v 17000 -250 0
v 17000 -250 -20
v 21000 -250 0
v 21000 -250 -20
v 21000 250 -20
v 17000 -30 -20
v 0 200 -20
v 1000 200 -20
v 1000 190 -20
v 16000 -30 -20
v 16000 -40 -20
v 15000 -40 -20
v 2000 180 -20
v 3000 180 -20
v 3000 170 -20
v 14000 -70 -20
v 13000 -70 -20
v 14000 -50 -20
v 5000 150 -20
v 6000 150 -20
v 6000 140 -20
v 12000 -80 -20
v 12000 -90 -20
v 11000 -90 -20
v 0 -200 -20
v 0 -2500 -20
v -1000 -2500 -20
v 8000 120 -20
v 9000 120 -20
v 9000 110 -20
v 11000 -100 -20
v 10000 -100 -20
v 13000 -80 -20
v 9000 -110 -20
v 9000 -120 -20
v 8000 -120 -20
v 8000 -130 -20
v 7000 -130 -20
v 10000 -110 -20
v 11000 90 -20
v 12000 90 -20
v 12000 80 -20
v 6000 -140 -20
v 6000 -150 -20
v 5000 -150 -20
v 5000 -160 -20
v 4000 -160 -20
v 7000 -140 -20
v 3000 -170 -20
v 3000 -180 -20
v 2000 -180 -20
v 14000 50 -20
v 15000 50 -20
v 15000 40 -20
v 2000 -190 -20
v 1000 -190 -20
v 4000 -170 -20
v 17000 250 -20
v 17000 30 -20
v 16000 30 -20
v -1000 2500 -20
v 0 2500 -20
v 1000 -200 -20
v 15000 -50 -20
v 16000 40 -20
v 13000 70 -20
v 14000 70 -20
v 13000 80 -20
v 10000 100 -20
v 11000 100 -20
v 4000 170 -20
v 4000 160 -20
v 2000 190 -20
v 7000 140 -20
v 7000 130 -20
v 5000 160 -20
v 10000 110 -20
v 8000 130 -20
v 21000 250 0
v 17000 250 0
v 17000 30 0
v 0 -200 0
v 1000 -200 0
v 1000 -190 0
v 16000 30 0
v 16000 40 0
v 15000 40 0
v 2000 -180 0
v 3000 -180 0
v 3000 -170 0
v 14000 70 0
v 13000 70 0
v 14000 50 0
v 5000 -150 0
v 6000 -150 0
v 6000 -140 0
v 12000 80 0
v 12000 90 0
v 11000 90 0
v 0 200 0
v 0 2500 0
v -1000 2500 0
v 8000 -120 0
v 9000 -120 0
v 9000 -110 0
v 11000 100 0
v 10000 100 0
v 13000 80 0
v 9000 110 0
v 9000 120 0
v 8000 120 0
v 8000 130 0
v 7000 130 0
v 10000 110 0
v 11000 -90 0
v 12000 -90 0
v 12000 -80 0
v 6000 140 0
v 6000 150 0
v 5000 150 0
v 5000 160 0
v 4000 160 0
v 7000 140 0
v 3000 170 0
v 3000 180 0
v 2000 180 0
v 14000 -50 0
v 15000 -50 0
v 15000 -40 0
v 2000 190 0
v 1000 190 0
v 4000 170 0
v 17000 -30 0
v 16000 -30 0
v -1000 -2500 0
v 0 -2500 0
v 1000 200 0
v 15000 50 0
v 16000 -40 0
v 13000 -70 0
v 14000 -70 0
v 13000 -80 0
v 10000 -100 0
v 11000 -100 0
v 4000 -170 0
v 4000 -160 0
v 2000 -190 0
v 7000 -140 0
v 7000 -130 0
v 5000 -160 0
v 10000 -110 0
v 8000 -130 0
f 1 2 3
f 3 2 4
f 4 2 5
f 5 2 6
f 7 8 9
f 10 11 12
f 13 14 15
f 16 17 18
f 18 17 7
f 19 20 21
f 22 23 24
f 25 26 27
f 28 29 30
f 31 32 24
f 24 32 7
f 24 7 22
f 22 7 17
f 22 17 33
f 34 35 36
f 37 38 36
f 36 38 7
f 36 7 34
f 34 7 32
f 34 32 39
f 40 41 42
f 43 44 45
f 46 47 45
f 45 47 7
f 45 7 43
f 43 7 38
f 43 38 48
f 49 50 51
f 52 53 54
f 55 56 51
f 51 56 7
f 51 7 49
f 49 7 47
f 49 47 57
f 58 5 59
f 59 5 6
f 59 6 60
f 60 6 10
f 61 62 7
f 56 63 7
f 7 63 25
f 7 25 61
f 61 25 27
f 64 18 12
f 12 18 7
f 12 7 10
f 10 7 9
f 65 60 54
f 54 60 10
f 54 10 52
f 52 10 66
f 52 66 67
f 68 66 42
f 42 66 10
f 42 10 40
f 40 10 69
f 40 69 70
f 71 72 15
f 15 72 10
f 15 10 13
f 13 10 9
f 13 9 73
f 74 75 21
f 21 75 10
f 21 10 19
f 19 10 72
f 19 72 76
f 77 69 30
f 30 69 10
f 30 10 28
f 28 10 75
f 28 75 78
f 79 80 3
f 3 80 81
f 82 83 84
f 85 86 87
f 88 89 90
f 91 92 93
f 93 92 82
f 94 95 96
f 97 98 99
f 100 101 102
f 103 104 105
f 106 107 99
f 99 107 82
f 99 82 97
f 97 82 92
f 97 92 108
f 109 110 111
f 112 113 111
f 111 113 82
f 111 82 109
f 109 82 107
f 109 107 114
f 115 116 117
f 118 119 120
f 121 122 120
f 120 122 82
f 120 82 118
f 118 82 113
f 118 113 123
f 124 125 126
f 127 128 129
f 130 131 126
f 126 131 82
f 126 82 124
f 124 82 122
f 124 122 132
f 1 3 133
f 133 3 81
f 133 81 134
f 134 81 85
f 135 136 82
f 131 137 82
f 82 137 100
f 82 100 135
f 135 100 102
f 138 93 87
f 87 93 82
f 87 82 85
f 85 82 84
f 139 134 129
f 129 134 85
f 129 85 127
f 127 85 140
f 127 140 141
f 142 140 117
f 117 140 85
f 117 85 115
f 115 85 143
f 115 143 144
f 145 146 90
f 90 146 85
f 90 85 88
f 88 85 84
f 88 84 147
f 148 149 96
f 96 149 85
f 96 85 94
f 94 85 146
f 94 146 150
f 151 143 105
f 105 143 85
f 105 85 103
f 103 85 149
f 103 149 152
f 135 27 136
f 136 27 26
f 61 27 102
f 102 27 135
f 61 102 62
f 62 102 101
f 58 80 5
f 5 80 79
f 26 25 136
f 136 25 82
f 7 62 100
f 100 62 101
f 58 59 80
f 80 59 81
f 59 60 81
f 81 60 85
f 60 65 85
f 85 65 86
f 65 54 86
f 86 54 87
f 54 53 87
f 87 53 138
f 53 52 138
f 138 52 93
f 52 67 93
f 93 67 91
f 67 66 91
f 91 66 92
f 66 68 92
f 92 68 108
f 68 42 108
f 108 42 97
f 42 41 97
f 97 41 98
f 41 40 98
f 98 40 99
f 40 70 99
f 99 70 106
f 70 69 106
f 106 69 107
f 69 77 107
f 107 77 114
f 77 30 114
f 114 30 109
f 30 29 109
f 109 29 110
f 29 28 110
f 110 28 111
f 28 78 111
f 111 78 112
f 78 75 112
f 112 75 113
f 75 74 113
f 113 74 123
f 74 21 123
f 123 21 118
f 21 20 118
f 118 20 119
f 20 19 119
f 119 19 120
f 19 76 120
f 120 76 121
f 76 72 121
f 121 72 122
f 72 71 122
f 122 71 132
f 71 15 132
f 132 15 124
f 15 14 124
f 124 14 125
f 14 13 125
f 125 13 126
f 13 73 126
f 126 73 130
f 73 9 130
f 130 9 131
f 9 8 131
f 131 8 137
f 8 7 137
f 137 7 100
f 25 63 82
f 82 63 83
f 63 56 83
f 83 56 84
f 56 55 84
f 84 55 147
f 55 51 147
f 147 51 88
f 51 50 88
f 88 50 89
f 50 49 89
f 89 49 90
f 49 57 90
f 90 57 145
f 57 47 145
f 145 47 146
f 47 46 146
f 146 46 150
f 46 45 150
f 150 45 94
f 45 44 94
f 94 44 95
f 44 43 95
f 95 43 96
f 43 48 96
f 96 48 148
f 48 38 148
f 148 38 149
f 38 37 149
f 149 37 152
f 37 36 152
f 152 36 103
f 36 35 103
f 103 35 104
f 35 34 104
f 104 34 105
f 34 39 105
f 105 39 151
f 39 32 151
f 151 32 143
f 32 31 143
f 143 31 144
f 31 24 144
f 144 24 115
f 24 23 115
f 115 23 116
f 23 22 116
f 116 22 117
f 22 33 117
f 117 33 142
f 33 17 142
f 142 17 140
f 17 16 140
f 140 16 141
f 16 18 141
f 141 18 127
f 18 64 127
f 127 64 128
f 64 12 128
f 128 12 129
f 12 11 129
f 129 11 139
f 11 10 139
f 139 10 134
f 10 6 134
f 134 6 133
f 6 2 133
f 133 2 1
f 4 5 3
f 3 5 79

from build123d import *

# Parameters (mm, degrees)
BOSS_EXTRUDE1_DEPTH = 20
SKETCH2_W           = 1000
SKETCH2_H           = 2250
CUT_EXTRUDE1_DEPTH  = 41077.153666087
CUT_EXTRUDE3_DEPTH  = 41077.153666087
SKETCH4_W           = 20000
SKETCH4_H           = 500
CUT_EXTRUDE4_DEPTH  = 41077.153666087


with BuildPart() as part:
    # Sketch1 → Boss-Extrude1 (new body)
    with BuildSketch(Plane.XY):
        Polygon((1000, 250), (41000, 250), (41000, -250), (1000, -250), (1000, -2500), (-1000, -2500), (-1000, 2500), (1000, 2500), align=None)
    extrude(amount=-BOSS_EXTRUDE1_DEPTH)

    # Sketch2 → Cut-Extrude1 (cut, through all)
    with BuildSketch(Plane.XY):
        with Locations((500, 1375)):
            Rectangle(SKETCH2_W, SKETCH2_H)
        with Locations((500, -1375)):
            Rectangle(SKETCH2_W, SKETCH2_H)
    extrude(amount=-CUT_EXTRUDE1_DEPTH, mode=Mode.SUBTRACT)

    # Sketch3 → Cut-Extrude3 (cut, through all)
    with BuildSketch(Plane.XY):
        Polygon((0, 250), (0, 200), (1000, 200), (1000, 190), (2000, 190), (2000, 180), (3000, 180), (3000, 170), (4000, 170), (4000, 160), (5000, 160), (5000, 150), (6000, 150), (6000, 140), (7000, 140), (7000, 130), (8000, 130), (8000, 120), (9000, 120), (9000, 110), (10000, 110), (10000, 100), (11000, 100), (11000, 90), (12000, 90), (12000, 80), (13000, 80), (13000, 70), (14000, 70), (14000, 50), (15000, 50), (15000, 40), (16000, 40), (16000, 30), (17000, 30), (17000, 250), align=None)
    cut_extrude3 = extrude(amount=-CUT_EXTRUDE3_DEPTH, mode=Mode.SUBTRACT)

    # Mirror1: Cut-Extrude3 across plane
    add(cut_extrude3.mirror(Plane.ZX), mode=Mode.SUBTRACT)

    # Sketch4 → Cut-Extrude4 (cut, through all)
    with BuildSketch(Plane.XY):
        with Locations((31000, 0)):
            Rectangle(SKETCH4_W, SKETCH4_H)
    extrude(amount=-CUT_EXTRUDE4_DEPTH, mode=Mode.SUBTRACT)


solid = part.part
